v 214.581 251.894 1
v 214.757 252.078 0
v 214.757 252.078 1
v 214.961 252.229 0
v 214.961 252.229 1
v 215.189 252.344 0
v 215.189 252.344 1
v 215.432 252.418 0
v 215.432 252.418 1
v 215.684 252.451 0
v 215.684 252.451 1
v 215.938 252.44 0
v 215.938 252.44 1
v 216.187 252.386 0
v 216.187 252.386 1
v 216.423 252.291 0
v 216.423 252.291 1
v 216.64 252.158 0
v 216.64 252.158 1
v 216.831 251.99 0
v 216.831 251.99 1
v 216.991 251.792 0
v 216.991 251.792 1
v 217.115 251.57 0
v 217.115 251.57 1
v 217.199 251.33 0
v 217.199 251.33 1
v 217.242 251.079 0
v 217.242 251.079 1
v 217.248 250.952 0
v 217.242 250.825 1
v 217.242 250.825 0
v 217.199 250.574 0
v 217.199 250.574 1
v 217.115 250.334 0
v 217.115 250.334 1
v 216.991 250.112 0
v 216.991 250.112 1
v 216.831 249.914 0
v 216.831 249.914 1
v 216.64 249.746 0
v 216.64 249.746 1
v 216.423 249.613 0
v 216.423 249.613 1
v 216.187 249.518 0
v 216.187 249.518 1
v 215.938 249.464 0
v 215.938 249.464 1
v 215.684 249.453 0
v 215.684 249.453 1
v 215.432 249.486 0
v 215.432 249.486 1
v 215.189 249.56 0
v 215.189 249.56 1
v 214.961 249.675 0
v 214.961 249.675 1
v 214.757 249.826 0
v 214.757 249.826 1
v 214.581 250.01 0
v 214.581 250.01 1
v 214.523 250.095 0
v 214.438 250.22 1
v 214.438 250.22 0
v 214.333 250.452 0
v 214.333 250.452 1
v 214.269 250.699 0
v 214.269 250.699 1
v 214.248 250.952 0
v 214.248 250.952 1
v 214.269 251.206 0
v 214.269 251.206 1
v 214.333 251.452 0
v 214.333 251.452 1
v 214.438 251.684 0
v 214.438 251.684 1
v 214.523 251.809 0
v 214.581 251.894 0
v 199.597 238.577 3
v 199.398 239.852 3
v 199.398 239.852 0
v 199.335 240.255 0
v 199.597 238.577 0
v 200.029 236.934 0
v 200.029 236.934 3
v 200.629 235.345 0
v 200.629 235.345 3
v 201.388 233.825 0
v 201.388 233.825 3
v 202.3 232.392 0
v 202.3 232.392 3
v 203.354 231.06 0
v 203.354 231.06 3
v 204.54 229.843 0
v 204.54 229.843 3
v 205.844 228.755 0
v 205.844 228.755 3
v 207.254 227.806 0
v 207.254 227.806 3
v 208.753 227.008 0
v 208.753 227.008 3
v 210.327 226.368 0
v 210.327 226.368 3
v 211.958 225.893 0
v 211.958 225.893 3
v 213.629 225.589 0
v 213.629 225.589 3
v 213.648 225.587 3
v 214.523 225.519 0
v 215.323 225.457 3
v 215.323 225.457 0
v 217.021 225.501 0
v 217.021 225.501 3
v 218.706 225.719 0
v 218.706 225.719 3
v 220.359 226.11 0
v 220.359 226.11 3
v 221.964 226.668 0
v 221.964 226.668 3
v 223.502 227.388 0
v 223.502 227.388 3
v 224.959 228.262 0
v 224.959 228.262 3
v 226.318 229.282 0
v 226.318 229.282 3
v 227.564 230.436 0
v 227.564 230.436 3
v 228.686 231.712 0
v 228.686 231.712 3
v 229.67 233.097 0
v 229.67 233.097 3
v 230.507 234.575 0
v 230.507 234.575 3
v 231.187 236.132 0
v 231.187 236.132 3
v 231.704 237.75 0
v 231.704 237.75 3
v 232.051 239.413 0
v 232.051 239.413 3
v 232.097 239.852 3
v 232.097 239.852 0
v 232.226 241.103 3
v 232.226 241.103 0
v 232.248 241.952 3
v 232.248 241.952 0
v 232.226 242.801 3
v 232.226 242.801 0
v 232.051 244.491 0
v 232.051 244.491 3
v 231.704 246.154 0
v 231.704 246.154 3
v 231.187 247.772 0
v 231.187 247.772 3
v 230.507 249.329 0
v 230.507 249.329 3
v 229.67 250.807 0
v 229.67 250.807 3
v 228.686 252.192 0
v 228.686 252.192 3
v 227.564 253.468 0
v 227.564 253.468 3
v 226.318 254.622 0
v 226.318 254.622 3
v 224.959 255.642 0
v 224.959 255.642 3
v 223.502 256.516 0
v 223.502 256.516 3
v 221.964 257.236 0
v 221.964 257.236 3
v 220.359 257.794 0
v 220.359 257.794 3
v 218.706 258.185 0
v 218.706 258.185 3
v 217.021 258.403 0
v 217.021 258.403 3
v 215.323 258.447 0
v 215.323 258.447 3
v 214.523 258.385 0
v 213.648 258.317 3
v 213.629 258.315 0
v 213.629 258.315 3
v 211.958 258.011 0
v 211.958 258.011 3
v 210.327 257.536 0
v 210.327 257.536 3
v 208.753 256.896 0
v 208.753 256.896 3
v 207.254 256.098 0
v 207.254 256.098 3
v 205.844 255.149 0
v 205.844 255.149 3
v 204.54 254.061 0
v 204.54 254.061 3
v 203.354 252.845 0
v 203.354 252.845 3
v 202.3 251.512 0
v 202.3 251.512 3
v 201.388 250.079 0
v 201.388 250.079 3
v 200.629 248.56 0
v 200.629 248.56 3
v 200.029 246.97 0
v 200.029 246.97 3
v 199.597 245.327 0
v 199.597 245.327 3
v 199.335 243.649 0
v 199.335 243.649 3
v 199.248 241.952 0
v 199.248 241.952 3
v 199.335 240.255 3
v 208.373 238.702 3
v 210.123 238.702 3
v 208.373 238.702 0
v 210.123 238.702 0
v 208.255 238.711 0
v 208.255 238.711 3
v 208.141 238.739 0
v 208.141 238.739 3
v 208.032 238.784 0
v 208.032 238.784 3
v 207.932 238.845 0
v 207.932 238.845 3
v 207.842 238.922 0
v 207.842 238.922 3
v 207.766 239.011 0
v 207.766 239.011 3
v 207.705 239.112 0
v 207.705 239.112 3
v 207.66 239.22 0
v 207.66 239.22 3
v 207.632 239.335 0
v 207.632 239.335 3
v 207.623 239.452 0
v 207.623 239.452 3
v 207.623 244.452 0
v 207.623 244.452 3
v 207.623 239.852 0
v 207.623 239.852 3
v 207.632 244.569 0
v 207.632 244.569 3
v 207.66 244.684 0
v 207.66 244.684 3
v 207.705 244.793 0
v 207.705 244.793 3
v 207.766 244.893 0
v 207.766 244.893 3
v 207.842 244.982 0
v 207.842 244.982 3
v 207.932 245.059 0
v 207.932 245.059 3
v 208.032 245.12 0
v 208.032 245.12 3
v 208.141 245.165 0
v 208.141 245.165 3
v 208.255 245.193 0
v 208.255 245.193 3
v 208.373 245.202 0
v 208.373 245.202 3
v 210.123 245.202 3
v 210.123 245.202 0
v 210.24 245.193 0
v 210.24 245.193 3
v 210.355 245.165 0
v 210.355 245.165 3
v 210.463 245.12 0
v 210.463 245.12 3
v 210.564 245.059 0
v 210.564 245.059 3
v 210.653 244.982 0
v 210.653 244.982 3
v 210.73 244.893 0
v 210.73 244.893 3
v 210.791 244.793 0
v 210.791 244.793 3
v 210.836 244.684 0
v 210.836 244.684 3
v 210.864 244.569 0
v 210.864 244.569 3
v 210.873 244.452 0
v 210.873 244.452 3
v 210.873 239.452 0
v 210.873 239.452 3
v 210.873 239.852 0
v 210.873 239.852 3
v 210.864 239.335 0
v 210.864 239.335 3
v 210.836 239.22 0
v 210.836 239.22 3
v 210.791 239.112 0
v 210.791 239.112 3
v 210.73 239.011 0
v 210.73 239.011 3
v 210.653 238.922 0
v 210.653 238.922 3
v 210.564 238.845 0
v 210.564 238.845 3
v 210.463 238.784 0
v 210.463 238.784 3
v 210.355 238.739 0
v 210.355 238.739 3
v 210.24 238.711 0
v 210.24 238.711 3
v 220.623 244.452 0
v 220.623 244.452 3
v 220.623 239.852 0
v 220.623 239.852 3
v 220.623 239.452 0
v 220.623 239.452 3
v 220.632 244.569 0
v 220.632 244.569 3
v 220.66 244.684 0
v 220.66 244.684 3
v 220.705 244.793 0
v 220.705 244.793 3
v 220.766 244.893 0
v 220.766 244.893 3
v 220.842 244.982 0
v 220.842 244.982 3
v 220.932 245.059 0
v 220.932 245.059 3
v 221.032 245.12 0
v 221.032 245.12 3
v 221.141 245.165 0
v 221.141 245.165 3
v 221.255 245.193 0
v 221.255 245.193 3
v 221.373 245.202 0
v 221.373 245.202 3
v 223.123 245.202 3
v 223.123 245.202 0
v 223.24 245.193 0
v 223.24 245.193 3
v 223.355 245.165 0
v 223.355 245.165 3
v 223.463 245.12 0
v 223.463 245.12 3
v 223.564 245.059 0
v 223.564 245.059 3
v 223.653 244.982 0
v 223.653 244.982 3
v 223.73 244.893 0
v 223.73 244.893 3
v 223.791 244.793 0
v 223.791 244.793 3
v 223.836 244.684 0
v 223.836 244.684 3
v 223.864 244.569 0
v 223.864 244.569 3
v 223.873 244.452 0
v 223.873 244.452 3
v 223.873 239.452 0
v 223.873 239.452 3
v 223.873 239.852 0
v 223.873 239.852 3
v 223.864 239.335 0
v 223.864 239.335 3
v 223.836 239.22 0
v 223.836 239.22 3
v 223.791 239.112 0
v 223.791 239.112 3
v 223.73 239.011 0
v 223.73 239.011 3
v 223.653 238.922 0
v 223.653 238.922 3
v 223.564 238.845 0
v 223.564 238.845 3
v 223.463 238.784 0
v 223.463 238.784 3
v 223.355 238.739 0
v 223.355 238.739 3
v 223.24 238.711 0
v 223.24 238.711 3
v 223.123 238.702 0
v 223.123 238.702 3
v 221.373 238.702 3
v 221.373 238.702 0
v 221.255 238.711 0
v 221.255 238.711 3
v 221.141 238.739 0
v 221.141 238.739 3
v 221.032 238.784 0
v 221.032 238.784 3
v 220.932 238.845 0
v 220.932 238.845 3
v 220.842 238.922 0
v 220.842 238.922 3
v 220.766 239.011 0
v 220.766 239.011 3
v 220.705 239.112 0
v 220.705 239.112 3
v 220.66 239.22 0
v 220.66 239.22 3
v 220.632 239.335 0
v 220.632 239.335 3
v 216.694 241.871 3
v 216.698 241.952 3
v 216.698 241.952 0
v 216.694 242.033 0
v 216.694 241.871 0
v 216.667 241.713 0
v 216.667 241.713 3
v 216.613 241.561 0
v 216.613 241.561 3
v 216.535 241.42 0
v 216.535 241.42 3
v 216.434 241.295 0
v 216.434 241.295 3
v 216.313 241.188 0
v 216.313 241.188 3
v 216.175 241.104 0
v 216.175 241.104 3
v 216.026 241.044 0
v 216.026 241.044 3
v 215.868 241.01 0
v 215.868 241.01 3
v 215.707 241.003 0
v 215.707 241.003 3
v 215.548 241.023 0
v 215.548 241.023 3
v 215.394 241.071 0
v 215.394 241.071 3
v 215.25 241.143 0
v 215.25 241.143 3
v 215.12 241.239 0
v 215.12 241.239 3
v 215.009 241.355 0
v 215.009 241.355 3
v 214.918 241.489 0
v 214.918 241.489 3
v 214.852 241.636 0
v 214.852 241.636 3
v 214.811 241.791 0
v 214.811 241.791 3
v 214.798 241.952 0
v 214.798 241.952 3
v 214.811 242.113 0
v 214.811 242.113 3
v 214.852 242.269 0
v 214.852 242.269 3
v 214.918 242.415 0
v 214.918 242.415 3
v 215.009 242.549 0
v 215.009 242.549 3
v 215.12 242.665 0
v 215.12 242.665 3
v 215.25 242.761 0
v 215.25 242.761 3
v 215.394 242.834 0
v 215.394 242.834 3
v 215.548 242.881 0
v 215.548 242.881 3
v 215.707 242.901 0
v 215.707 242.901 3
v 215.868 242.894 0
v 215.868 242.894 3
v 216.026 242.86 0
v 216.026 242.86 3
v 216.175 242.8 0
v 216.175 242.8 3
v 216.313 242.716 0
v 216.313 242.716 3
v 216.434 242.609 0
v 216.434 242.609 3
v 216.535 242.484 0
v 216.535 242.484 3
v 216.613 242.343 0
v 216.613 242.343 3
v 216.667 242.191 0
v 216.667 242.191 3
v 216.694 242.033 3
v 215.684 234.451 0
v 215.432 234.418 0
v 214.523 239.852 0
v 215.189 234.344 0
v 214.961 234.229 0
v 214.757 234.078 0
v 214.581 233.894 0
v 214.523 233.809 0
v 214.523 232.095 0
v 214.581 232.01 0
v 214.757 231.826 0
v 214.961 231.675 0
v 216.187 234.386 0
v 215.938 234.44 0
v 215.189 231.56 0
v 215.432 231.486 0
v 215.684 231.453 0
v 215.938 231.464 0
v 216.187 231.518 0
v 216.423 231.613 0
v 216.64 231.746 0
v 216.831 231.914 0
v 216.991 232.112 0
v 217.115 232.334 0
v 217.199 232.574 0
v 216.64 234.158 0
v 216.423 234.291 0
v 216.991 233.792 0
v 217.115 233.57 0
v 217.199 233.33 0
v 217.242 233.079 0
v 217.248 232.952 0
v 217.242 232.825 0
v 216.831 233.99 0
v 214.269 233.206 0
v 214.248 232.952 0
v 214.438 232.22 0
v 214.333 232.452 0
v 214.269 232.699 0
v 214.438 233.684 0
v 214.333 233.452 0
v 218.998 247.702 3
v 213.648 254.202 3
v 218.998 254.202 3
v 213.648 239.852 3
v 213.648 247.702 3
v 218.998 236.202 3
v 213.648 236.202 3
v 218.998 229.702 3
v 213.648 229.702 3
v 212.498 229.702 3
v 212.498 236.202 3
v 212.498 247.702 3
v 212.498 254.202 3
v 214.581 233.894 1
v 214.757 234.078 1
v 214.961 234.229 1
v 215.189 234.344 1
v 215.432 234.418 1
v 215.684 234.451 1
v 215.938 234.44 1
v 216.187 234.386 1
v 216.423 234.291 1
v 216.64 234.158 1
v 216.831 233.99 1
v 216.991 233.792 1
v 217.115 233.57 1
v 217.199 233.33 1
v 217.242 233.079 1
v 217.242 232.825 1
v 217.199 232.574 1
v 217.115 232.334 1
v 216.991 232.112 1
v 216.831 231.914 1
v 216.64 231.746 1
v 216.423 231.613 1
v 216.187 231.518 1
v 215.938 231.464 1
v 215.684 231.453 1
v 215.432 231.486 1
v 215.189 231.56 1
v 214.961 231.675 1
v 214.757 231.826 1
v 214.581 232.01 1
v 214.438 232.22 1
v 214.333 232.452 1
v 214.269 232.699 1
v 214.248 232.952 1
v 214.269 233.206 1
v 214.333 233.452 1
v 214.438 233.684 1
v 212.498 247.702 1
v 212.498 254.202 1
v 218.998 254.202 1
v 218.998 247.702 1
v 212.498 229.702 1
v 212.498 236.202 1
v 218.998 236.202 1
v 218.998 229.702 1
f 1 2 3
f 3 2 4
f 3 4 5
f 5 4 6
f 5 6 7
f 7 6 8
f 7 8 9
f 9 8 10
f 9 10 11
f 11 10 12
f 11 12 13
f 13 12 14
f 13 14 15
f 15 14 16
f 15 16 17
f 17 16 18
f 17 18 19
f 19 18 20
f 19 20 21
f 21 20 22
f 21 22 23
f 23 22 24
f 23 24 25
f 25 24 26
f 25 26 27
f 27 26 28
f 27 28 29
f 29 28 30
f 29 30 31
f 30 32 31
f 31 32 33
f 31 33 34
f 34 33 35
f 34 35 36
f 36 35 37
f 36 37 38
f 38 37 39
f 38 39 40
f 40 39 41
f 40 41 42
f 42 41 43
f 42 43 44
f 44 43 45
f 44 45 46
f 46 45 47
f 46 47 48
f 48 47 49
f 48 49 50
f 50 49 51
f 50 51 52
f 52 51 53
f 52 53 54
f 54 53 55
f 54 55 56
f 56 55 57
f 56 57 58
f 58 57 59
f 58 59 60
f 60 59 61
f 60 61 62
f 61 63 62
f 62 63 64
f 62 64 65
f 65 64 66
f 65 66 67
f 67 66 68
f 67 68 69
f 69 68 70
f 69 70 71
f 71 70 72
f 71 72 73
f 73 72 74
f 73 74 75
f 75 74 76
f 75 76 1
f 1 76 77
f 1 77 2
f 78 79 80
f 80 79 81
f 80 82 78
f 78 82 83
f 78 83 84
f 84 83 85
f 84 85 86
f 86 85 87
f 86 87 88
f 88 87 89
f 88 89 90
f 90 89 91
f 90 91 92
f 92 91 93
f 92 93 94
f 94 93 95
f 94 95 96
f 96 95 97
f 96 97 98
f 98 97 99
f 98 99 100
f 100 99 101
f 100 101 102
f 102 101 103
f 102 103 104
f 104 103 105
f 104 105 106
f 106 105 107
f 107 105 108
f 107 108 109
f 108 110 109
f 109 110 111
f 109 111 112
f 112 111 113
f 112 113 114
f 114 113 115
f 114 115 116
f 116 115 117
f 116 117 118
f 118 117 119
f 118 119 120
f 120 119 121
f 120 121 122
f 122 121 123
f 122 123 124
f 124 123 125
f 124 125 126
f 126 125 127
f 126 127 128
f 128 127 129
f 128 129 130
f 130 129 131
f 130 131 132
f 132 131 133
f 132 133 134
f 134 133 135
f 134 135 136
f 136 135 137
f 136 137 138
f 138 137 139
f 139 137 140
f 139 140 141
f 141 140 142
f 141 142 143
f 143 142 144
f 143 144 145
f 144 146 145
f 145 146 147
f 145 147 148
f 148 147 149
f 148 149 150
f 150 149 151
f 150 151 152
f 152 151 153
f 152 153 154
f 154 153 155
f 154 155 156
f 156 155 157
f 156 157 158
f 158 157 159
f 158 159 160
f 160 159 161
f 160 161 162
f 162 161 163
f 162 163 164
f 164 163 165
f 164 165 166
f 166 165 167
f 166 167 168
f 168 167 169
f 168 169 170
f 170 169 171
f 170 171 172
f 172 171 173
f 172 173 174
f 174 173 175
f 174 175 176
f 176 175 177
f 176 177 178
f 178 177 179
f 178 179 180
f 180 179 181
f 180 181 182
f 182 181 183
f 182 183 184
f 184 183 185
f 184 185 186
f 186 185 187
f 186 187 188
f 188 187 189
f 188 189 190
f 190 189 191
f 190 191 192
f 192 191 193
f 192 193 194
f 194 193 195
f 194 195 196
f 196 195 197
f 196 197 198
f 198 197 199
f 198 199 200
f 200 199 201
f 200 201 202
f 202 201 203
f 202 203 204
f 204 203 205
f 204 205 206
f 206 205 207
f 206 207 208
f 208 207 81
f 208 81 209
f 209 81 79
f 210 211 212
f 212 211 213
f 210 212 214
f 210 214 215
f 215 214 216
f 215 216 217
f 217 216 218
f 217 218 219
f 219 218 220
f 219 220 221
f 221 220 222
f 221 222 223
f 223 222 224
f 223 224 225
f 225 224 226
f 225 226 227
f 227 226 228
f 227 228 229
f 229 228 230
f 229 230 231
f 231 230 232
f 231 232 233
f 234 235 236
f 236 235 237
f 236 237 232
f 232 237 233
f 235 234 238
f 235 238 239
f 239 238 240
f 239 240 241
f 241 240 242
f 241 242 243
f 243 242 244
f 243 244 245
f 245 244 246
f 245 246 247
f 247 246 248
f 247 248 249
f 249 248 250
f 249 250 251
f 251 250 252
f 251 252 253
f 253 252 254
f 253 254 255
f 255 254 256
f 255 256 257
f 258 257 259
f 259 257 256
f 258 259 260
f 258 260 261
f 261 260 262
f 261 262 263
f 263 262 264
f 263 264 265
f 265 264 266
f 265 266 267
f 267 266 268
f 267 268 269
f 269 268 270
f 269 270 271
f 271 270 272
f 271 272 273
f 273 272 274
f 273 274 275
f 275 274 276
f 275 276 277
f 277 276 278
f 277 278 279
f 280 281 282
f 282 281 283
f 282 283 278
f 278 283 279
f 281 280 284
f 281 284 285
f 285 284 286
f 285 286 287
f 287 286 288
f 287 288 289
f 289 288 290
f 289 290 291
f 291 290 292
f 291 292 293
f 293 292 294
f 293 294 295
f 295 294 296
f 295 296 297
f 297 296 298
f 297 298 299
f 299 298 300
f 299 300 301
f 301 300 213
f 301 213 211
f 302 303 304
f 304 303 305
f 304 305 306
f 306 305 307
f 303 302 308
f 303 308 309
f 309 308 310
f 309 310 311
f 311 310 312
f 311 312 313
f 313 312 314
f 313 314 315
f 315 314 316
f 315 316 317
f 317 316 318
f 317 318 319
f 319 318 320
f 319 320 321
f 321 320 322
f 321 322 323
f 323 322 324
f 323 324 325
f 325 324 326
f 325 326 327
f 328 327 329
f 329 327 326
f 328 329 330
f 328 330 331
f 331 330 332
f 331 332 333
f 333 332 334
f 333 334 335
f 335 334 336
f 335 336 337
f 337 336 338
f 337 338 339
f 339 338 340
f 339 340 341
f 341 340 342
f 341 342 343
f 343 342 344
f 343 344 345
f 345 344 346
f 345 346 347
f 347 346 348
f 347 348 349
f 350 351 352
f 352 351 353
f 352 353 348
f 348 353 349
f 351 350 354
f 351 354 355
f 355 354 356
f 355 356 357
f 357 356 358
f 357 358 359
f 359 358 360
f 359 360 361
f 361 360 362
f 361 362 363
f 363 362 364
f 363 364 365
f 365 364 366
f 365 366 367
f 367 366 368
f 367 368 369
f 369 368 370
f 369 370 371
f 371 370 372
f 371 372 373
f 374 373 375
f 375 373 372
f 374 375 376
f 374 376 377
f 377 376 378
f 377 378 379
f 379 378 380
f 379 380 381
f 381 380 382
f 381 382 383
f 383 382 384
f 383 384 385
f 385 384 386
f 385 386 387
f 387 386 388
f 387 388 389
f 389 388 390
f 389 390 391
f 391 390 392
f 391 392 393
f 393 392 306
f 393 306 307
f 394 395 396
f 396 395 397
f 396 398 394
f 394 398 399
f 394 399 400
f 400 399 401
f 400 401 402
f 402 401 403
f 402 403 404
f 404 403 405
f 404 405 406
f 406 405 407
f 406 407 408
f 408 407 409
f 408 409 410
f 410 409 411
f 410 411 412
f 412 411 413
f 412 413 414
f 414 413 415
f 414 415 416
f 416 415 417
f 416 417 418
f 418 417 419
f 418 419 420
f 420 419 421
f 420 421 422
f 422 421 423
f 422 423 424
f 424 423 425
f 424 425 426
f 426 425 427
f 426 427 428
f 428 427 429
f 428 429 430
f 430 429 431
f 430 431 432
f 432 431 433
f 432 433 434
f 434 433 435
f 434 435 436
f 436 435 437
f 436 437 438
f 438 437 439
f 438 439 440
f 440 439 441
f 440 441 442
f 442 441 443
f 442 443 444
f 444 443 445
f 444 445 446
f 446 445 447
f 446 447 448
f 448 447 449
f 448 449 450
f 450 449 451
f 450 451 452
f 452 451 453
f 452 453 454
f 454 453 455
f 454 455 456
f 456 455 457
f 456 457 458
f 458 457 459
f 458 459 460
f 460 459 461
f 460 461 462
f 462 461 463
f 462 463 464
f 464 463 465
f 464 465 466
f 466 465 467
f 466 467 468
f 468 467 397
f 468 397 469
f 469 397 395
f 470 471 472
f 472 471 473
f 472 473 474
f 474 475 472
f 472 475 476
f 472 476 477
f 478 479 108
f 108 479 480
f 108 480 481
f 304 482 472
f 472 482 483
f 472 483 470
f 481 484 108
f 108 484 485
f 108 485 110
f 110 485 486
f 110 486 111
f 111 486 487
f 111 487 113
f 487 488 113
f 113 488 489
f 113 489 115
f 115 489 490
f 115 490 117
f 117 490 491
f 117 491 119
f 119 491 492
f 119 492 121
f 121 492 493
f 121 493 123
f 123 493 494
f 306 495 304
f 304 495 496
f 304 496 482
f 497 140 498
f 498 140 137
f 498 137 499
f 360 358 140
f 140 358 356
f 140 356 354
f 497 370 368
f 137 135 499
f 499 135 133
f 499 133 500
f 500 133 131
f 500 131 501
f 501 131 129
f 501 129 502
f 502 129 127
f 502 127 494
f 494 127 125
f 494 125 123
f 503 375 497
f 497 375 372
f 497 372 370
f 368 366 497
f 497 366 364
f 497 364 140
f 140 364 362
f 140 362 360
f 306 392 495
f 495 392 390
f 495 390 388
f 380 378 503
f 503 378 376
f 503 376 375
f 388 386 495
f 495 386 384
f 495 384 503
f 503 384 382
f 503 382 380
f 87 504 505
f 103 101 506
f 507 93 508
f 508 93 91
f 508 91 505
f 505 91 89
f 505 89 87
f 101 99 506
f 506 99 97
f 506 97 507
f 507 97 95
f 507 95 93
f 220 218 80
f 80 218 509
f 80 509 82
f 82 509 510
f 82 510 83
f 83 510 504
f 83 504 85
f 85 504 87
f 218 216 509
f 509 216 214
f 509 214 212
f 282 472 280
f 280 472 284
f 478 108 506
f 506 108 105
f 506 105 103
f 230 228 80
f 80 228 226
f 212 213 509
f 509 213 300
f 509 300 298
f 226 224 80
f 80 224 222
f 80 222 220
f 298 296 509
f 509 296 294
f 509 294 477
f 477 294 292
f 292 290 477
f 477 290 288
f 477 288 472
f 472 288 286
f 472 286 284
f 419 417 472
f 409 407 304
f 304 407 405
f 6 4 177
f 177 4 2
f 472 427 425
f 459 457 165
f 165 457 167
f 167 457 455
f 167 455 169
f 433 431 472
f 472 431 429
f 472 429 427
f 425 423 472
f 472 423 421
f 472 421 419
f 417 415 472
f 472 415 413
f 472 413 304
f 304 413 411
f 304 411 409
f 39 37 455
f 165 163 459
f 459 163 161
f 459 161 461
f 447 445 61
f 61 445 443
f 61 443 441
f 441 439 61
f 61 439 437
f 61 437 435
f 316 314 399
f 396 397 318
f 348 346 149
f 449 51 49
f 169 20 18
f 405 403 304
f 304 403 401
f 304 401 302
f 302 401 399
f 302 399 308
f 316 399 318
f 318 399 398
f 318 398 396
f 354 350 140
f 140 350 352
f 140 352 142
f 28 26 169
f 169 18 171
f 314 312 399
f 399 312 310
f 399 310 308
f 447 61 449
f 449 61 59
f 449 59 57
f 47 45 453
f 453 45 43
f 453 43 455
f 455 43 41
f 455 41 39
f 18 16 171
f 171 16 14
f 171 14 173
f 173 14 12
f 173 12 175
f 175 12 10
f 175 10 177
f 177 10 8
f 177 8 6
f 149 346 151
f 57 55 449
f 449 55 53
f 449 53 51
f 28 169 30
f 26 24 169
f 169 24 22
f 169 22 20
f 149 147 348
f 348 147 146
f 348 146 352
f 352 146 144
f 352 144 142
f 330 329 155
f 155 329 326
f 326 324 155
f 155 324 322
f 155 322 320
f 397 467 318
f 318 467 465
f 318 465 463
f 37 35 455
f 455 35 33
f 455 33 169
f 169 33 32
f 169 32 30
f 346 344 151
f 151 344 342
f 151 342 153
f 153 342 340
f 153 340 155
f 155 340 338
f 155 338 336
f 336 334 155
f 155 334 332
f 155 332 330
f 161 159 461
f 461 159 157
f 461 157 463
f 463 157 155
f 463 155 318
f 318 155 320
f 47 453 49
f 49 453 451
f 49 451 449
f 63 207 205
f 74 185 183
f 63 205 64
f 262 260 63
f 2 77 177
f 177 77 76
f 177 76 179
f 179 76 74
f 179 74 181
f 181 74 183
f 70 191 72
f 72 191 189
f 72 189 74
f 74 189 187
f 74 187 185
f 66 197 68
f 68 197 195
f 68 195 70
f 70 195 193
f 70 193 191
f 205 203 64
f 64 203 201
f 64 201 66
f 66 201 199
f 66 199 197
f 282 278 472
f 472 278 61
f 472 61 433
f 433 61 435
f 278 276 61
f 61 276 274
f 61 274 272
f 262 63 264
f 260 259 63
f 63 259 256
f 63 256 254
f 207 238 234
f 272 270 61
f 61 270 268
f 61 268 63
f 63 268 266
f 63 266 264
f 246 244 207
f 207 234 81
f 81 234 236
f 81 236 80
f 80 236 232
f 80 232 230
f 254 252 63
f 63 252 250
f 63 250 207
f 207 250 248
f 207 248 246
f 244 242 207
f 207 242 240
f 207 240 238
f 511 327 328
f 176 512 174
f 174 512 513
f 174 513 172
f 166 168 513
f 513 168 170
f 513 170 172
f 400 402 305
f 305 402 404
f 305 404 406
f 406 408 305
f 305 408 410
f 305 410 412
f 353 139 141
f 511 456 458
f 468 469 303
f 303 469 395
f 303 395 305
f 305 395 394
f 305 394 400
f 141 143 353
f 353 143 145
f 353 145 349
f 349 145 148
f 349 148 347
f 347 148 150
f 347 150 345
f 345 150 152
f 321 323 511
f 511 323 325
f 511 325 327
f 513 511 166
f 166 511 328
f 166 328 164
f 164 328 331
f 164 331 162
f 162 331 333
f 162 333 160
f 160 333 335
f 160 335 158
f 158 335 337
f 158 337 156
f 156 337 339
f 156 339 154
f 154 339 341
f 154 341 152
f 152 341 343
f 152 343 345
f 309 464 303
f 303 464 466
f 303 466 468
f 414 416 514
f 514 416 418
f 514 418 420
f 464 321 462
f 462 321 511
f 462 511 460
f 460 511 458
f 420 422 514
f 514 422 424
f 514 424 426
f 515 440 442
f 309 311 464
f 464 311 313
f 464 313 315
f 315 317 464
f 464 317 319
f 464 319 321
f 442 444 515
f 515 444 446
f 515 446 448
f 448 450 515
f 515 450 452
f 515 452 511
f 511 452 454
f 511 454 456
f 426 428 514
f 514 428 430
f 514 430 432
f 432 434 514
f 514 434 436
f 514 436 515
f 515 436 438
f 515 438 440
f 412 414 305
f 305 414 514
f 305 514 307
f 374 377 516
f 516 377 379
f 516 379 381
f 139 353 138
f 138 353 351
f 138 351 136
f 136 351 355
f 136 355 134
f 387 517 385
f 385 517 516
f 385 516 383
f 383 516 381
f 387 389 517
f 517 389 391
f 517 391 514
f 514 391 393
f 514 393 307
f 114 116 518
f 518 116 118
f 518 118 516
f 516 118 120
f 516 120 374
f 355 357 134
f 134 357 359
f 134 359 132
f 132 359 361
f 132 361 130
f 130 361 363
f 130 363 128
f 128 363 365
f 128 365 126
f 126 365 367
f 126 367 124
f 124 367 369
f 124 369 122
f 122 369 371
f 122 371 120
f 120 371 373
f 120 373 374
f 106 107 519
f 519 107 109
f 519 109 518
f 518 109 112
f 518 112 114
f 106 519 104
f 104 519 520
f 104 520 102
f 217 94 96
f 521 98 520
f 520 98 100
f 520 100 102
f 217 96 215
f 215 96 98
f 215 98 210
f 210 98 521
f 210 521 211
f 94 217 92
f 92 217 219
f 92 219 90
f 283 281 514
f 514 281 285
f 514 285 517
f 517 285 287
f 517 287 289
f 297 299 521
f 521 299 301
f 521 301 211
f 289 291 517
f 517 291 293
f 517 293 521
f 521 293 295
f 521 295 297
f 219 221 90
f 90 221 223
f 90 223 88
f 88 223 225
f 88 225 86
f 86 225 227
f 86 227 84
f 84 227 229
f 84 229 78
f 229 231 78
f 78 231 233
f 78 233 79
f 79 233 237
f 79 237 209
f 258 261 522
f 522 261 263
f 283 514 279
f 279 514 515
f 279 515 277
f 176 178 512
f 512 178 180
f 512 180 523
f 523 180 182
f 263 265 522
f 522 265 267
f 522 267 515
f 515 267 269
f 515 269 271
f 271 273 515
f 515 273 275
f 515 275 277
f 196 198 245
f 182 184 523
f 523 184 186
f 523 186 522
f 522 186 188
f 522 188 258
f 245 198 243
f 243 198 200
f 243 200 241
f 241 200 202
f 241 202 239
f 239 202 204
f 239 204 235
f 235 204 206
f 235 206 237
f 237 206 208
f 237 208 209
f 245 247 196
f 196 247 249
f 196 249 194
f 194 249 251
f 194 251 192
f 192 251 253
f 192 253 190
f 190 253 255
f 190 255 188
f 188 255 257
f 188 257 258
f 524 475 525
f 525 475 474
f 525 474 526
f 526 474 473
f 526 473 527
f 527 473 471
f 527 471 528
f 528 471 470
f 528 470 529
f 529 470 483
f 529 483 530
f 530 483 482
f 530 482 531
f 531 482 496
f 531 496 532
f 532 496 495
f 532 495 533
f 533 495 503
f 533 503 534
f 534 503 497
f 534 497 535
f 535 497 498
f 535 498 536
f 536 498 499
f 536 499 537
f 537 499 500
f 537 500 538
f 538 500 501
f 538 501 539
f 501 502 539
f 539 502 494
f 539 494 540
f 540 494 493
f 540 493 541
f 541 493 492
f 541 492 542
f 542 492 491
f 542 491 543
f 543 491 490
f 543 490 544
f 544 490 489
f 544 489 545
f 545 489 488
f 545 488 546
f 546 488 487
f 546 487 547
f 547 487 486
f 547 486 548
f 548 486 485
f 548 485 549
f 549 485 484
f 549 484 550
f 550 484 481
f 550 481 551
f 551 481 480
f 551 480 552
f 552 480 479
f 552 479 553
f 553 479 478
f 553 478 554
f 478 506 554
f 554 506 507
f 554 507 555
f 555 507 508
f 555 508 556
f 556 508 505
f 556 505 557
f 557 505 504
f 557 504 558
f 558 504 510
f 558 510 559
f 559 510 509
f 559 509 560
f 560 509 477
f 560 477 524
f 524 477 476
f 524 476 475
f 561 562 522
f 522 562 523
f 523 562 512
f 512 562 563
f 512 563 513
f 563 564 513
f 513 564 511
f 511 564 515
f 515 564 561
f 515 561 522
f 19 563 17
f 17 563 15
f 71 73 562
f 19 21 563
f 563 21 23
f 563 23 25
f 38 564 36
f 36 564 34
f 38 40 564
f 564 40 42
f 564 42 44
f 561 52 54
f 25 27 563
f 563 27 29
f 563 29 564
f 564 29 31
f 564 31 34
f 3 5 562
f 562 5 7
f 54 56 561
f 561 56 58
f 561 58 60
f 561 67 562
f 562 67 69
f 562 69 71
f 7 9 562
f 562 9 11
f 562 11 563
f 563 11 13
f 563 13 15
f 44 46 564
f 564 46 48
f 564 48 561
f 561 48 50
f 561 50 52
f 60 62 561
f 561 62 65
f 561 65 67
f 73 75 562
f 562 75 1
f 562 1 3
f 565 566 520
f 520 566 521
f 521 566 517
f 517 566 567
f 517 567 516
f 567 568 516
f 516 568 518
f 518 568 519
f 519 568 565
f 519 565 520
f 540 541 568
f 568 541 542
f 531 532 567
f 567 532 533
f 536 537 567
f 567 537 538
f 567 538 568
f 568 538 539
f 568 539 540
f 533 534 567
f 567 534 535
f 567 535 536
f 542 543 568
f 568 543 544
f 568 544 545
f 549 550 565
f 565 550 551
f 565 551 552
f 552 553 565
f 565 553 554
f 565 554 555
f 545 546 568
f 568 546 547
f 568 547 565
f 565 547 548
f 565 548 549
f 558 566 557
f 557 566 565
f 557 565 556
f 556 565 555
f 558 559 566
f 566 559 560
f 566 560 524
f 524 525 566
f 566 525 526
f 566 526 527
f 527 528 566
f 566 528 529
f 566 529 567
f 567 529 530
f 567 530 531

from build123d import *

# Parameters (mm, degrees)
MODEL_R                 = 16.5
MODEL_R_2               = 1.5
MODEL_R_3               = 0.95
SALIENTE_EXTRUIR3_DEPTH = 3
CROQUIS3_W              = 6.5
CROQUIS3_H              = 6.5
CORTAR_EXTRUIR1_DEPTH   = 2
CROQUIS4_W              = 6.500000001
CROQUIS4_H              = 6.5
CORTAR_EXTRUIR2_DEPTH   = 2


with BuildPart() as part:
    # Model → Saliente-Extruir3 (new body)
    with BuildSketch(Plane.XY):
        with Locations((215.747807914, 241.952019993)):
            Circle(MODEL_R)
        with Locations((215.747807914, 250.952019993)):
            Circle(MODEL_R_2, mode=Mode.SUBTRACT)
        with BuildLine():
            ThreePointArc((207.622807913, 244.452019993), (207.842477828, 244.982350079), (208.372807913, 245.202019993))
            Line((208.372807913, 245.202019993), (210.122807913, 245.202019993))
            ThreePointArc((210.122807913, 245.202019993), (210.653137999, 244.982350079), (210.872807913, 244.452019993))
            Line((210.872807913, 244.452019993), (210.872807913, 239.452019993))
            ThreePointArc((210.872807914, 239.452019993), (210.653137999, 238.921689907), (210.122807913, 238.702019993))
            Line((210.122807913, 238.702019993), (208.372807913, 238.702019993))
            ThreePointArc((208.372807913, 238.702019993), (207.842477828, 238.921689907), (207.622807913, 239.452019993))
            Line((207.622807913, 239.452019993), (207.622807913, 244.452019993))
        make_face(mode=Mode.SUBTRACT)
        with BuildLine():
            Line((221.372807913, 245.202019993), (223.122807913, 245.202019993))
            ThreePointArc((223.122807913, 245.202019993), (223.653137999, 244.982350079), (223.872807913, 244.452019993))
            Line((223.872807913, 244.452019993), (223.872807913, 239.452019993))
            ThreePointArc((223.872807914, 239.452019993), (223.653137999, 238.921689907), (223.122807913, 238.702019993))
            Line((223.122807913, 238.702019993), (221.372807913, 238.702019993))
            ThreePointArc((221.372807913, 238.702019993), (220.842477828, 238.921689907), (220.622807913, 239.452019993))
            Line((220.622807913, 239.452019993), (220.622807913, 244.452019993))
            ThreePointArc((220.622807913, 244.452019993), (220.842477828, 244.982350079), (221.372807913, 245.202019993))
        make_face(mode=Mode.SUBTRACT)
        with Locations((215.747807914, 241.952019993)):
            Circle(MODEL_R_3, mode=Mode.SUBTRACT)
        with Locations((215.747807914, 232.952019993)):
            Circle(MODEL_R_2, mode=Mode.SUBTRACT)
    extrude(amount=SALIENTE_EXTRUIR3_DEPTH)

    # Croquis3 → Cortar-Extruir1 (cut)
    with BuildSketch(Plane.XY.offset(3)):
        with Locations((215.747807914, 250.952019993)):
            Rectangle(CROQUIS3_W, CROQUIS3_H)
    extrude(amount=-CORTAR_EXTRUIR1_DEPTH, mode=Mode.SUBTRACT)

    # Croquis4 → Cortar-Extruir2 (cut)
    with BuildSketch(Plane.XY.offset(3)):
        with Locations((215.747807914, 232.952019993)):
            Rectangle(CROQUIS4_W, CROQUIS4_H)
    extrude(amount=-CORTAR_EXTRUIR2_DEPTH, mode=Mode.SUBTRACT)


solid = part.part
